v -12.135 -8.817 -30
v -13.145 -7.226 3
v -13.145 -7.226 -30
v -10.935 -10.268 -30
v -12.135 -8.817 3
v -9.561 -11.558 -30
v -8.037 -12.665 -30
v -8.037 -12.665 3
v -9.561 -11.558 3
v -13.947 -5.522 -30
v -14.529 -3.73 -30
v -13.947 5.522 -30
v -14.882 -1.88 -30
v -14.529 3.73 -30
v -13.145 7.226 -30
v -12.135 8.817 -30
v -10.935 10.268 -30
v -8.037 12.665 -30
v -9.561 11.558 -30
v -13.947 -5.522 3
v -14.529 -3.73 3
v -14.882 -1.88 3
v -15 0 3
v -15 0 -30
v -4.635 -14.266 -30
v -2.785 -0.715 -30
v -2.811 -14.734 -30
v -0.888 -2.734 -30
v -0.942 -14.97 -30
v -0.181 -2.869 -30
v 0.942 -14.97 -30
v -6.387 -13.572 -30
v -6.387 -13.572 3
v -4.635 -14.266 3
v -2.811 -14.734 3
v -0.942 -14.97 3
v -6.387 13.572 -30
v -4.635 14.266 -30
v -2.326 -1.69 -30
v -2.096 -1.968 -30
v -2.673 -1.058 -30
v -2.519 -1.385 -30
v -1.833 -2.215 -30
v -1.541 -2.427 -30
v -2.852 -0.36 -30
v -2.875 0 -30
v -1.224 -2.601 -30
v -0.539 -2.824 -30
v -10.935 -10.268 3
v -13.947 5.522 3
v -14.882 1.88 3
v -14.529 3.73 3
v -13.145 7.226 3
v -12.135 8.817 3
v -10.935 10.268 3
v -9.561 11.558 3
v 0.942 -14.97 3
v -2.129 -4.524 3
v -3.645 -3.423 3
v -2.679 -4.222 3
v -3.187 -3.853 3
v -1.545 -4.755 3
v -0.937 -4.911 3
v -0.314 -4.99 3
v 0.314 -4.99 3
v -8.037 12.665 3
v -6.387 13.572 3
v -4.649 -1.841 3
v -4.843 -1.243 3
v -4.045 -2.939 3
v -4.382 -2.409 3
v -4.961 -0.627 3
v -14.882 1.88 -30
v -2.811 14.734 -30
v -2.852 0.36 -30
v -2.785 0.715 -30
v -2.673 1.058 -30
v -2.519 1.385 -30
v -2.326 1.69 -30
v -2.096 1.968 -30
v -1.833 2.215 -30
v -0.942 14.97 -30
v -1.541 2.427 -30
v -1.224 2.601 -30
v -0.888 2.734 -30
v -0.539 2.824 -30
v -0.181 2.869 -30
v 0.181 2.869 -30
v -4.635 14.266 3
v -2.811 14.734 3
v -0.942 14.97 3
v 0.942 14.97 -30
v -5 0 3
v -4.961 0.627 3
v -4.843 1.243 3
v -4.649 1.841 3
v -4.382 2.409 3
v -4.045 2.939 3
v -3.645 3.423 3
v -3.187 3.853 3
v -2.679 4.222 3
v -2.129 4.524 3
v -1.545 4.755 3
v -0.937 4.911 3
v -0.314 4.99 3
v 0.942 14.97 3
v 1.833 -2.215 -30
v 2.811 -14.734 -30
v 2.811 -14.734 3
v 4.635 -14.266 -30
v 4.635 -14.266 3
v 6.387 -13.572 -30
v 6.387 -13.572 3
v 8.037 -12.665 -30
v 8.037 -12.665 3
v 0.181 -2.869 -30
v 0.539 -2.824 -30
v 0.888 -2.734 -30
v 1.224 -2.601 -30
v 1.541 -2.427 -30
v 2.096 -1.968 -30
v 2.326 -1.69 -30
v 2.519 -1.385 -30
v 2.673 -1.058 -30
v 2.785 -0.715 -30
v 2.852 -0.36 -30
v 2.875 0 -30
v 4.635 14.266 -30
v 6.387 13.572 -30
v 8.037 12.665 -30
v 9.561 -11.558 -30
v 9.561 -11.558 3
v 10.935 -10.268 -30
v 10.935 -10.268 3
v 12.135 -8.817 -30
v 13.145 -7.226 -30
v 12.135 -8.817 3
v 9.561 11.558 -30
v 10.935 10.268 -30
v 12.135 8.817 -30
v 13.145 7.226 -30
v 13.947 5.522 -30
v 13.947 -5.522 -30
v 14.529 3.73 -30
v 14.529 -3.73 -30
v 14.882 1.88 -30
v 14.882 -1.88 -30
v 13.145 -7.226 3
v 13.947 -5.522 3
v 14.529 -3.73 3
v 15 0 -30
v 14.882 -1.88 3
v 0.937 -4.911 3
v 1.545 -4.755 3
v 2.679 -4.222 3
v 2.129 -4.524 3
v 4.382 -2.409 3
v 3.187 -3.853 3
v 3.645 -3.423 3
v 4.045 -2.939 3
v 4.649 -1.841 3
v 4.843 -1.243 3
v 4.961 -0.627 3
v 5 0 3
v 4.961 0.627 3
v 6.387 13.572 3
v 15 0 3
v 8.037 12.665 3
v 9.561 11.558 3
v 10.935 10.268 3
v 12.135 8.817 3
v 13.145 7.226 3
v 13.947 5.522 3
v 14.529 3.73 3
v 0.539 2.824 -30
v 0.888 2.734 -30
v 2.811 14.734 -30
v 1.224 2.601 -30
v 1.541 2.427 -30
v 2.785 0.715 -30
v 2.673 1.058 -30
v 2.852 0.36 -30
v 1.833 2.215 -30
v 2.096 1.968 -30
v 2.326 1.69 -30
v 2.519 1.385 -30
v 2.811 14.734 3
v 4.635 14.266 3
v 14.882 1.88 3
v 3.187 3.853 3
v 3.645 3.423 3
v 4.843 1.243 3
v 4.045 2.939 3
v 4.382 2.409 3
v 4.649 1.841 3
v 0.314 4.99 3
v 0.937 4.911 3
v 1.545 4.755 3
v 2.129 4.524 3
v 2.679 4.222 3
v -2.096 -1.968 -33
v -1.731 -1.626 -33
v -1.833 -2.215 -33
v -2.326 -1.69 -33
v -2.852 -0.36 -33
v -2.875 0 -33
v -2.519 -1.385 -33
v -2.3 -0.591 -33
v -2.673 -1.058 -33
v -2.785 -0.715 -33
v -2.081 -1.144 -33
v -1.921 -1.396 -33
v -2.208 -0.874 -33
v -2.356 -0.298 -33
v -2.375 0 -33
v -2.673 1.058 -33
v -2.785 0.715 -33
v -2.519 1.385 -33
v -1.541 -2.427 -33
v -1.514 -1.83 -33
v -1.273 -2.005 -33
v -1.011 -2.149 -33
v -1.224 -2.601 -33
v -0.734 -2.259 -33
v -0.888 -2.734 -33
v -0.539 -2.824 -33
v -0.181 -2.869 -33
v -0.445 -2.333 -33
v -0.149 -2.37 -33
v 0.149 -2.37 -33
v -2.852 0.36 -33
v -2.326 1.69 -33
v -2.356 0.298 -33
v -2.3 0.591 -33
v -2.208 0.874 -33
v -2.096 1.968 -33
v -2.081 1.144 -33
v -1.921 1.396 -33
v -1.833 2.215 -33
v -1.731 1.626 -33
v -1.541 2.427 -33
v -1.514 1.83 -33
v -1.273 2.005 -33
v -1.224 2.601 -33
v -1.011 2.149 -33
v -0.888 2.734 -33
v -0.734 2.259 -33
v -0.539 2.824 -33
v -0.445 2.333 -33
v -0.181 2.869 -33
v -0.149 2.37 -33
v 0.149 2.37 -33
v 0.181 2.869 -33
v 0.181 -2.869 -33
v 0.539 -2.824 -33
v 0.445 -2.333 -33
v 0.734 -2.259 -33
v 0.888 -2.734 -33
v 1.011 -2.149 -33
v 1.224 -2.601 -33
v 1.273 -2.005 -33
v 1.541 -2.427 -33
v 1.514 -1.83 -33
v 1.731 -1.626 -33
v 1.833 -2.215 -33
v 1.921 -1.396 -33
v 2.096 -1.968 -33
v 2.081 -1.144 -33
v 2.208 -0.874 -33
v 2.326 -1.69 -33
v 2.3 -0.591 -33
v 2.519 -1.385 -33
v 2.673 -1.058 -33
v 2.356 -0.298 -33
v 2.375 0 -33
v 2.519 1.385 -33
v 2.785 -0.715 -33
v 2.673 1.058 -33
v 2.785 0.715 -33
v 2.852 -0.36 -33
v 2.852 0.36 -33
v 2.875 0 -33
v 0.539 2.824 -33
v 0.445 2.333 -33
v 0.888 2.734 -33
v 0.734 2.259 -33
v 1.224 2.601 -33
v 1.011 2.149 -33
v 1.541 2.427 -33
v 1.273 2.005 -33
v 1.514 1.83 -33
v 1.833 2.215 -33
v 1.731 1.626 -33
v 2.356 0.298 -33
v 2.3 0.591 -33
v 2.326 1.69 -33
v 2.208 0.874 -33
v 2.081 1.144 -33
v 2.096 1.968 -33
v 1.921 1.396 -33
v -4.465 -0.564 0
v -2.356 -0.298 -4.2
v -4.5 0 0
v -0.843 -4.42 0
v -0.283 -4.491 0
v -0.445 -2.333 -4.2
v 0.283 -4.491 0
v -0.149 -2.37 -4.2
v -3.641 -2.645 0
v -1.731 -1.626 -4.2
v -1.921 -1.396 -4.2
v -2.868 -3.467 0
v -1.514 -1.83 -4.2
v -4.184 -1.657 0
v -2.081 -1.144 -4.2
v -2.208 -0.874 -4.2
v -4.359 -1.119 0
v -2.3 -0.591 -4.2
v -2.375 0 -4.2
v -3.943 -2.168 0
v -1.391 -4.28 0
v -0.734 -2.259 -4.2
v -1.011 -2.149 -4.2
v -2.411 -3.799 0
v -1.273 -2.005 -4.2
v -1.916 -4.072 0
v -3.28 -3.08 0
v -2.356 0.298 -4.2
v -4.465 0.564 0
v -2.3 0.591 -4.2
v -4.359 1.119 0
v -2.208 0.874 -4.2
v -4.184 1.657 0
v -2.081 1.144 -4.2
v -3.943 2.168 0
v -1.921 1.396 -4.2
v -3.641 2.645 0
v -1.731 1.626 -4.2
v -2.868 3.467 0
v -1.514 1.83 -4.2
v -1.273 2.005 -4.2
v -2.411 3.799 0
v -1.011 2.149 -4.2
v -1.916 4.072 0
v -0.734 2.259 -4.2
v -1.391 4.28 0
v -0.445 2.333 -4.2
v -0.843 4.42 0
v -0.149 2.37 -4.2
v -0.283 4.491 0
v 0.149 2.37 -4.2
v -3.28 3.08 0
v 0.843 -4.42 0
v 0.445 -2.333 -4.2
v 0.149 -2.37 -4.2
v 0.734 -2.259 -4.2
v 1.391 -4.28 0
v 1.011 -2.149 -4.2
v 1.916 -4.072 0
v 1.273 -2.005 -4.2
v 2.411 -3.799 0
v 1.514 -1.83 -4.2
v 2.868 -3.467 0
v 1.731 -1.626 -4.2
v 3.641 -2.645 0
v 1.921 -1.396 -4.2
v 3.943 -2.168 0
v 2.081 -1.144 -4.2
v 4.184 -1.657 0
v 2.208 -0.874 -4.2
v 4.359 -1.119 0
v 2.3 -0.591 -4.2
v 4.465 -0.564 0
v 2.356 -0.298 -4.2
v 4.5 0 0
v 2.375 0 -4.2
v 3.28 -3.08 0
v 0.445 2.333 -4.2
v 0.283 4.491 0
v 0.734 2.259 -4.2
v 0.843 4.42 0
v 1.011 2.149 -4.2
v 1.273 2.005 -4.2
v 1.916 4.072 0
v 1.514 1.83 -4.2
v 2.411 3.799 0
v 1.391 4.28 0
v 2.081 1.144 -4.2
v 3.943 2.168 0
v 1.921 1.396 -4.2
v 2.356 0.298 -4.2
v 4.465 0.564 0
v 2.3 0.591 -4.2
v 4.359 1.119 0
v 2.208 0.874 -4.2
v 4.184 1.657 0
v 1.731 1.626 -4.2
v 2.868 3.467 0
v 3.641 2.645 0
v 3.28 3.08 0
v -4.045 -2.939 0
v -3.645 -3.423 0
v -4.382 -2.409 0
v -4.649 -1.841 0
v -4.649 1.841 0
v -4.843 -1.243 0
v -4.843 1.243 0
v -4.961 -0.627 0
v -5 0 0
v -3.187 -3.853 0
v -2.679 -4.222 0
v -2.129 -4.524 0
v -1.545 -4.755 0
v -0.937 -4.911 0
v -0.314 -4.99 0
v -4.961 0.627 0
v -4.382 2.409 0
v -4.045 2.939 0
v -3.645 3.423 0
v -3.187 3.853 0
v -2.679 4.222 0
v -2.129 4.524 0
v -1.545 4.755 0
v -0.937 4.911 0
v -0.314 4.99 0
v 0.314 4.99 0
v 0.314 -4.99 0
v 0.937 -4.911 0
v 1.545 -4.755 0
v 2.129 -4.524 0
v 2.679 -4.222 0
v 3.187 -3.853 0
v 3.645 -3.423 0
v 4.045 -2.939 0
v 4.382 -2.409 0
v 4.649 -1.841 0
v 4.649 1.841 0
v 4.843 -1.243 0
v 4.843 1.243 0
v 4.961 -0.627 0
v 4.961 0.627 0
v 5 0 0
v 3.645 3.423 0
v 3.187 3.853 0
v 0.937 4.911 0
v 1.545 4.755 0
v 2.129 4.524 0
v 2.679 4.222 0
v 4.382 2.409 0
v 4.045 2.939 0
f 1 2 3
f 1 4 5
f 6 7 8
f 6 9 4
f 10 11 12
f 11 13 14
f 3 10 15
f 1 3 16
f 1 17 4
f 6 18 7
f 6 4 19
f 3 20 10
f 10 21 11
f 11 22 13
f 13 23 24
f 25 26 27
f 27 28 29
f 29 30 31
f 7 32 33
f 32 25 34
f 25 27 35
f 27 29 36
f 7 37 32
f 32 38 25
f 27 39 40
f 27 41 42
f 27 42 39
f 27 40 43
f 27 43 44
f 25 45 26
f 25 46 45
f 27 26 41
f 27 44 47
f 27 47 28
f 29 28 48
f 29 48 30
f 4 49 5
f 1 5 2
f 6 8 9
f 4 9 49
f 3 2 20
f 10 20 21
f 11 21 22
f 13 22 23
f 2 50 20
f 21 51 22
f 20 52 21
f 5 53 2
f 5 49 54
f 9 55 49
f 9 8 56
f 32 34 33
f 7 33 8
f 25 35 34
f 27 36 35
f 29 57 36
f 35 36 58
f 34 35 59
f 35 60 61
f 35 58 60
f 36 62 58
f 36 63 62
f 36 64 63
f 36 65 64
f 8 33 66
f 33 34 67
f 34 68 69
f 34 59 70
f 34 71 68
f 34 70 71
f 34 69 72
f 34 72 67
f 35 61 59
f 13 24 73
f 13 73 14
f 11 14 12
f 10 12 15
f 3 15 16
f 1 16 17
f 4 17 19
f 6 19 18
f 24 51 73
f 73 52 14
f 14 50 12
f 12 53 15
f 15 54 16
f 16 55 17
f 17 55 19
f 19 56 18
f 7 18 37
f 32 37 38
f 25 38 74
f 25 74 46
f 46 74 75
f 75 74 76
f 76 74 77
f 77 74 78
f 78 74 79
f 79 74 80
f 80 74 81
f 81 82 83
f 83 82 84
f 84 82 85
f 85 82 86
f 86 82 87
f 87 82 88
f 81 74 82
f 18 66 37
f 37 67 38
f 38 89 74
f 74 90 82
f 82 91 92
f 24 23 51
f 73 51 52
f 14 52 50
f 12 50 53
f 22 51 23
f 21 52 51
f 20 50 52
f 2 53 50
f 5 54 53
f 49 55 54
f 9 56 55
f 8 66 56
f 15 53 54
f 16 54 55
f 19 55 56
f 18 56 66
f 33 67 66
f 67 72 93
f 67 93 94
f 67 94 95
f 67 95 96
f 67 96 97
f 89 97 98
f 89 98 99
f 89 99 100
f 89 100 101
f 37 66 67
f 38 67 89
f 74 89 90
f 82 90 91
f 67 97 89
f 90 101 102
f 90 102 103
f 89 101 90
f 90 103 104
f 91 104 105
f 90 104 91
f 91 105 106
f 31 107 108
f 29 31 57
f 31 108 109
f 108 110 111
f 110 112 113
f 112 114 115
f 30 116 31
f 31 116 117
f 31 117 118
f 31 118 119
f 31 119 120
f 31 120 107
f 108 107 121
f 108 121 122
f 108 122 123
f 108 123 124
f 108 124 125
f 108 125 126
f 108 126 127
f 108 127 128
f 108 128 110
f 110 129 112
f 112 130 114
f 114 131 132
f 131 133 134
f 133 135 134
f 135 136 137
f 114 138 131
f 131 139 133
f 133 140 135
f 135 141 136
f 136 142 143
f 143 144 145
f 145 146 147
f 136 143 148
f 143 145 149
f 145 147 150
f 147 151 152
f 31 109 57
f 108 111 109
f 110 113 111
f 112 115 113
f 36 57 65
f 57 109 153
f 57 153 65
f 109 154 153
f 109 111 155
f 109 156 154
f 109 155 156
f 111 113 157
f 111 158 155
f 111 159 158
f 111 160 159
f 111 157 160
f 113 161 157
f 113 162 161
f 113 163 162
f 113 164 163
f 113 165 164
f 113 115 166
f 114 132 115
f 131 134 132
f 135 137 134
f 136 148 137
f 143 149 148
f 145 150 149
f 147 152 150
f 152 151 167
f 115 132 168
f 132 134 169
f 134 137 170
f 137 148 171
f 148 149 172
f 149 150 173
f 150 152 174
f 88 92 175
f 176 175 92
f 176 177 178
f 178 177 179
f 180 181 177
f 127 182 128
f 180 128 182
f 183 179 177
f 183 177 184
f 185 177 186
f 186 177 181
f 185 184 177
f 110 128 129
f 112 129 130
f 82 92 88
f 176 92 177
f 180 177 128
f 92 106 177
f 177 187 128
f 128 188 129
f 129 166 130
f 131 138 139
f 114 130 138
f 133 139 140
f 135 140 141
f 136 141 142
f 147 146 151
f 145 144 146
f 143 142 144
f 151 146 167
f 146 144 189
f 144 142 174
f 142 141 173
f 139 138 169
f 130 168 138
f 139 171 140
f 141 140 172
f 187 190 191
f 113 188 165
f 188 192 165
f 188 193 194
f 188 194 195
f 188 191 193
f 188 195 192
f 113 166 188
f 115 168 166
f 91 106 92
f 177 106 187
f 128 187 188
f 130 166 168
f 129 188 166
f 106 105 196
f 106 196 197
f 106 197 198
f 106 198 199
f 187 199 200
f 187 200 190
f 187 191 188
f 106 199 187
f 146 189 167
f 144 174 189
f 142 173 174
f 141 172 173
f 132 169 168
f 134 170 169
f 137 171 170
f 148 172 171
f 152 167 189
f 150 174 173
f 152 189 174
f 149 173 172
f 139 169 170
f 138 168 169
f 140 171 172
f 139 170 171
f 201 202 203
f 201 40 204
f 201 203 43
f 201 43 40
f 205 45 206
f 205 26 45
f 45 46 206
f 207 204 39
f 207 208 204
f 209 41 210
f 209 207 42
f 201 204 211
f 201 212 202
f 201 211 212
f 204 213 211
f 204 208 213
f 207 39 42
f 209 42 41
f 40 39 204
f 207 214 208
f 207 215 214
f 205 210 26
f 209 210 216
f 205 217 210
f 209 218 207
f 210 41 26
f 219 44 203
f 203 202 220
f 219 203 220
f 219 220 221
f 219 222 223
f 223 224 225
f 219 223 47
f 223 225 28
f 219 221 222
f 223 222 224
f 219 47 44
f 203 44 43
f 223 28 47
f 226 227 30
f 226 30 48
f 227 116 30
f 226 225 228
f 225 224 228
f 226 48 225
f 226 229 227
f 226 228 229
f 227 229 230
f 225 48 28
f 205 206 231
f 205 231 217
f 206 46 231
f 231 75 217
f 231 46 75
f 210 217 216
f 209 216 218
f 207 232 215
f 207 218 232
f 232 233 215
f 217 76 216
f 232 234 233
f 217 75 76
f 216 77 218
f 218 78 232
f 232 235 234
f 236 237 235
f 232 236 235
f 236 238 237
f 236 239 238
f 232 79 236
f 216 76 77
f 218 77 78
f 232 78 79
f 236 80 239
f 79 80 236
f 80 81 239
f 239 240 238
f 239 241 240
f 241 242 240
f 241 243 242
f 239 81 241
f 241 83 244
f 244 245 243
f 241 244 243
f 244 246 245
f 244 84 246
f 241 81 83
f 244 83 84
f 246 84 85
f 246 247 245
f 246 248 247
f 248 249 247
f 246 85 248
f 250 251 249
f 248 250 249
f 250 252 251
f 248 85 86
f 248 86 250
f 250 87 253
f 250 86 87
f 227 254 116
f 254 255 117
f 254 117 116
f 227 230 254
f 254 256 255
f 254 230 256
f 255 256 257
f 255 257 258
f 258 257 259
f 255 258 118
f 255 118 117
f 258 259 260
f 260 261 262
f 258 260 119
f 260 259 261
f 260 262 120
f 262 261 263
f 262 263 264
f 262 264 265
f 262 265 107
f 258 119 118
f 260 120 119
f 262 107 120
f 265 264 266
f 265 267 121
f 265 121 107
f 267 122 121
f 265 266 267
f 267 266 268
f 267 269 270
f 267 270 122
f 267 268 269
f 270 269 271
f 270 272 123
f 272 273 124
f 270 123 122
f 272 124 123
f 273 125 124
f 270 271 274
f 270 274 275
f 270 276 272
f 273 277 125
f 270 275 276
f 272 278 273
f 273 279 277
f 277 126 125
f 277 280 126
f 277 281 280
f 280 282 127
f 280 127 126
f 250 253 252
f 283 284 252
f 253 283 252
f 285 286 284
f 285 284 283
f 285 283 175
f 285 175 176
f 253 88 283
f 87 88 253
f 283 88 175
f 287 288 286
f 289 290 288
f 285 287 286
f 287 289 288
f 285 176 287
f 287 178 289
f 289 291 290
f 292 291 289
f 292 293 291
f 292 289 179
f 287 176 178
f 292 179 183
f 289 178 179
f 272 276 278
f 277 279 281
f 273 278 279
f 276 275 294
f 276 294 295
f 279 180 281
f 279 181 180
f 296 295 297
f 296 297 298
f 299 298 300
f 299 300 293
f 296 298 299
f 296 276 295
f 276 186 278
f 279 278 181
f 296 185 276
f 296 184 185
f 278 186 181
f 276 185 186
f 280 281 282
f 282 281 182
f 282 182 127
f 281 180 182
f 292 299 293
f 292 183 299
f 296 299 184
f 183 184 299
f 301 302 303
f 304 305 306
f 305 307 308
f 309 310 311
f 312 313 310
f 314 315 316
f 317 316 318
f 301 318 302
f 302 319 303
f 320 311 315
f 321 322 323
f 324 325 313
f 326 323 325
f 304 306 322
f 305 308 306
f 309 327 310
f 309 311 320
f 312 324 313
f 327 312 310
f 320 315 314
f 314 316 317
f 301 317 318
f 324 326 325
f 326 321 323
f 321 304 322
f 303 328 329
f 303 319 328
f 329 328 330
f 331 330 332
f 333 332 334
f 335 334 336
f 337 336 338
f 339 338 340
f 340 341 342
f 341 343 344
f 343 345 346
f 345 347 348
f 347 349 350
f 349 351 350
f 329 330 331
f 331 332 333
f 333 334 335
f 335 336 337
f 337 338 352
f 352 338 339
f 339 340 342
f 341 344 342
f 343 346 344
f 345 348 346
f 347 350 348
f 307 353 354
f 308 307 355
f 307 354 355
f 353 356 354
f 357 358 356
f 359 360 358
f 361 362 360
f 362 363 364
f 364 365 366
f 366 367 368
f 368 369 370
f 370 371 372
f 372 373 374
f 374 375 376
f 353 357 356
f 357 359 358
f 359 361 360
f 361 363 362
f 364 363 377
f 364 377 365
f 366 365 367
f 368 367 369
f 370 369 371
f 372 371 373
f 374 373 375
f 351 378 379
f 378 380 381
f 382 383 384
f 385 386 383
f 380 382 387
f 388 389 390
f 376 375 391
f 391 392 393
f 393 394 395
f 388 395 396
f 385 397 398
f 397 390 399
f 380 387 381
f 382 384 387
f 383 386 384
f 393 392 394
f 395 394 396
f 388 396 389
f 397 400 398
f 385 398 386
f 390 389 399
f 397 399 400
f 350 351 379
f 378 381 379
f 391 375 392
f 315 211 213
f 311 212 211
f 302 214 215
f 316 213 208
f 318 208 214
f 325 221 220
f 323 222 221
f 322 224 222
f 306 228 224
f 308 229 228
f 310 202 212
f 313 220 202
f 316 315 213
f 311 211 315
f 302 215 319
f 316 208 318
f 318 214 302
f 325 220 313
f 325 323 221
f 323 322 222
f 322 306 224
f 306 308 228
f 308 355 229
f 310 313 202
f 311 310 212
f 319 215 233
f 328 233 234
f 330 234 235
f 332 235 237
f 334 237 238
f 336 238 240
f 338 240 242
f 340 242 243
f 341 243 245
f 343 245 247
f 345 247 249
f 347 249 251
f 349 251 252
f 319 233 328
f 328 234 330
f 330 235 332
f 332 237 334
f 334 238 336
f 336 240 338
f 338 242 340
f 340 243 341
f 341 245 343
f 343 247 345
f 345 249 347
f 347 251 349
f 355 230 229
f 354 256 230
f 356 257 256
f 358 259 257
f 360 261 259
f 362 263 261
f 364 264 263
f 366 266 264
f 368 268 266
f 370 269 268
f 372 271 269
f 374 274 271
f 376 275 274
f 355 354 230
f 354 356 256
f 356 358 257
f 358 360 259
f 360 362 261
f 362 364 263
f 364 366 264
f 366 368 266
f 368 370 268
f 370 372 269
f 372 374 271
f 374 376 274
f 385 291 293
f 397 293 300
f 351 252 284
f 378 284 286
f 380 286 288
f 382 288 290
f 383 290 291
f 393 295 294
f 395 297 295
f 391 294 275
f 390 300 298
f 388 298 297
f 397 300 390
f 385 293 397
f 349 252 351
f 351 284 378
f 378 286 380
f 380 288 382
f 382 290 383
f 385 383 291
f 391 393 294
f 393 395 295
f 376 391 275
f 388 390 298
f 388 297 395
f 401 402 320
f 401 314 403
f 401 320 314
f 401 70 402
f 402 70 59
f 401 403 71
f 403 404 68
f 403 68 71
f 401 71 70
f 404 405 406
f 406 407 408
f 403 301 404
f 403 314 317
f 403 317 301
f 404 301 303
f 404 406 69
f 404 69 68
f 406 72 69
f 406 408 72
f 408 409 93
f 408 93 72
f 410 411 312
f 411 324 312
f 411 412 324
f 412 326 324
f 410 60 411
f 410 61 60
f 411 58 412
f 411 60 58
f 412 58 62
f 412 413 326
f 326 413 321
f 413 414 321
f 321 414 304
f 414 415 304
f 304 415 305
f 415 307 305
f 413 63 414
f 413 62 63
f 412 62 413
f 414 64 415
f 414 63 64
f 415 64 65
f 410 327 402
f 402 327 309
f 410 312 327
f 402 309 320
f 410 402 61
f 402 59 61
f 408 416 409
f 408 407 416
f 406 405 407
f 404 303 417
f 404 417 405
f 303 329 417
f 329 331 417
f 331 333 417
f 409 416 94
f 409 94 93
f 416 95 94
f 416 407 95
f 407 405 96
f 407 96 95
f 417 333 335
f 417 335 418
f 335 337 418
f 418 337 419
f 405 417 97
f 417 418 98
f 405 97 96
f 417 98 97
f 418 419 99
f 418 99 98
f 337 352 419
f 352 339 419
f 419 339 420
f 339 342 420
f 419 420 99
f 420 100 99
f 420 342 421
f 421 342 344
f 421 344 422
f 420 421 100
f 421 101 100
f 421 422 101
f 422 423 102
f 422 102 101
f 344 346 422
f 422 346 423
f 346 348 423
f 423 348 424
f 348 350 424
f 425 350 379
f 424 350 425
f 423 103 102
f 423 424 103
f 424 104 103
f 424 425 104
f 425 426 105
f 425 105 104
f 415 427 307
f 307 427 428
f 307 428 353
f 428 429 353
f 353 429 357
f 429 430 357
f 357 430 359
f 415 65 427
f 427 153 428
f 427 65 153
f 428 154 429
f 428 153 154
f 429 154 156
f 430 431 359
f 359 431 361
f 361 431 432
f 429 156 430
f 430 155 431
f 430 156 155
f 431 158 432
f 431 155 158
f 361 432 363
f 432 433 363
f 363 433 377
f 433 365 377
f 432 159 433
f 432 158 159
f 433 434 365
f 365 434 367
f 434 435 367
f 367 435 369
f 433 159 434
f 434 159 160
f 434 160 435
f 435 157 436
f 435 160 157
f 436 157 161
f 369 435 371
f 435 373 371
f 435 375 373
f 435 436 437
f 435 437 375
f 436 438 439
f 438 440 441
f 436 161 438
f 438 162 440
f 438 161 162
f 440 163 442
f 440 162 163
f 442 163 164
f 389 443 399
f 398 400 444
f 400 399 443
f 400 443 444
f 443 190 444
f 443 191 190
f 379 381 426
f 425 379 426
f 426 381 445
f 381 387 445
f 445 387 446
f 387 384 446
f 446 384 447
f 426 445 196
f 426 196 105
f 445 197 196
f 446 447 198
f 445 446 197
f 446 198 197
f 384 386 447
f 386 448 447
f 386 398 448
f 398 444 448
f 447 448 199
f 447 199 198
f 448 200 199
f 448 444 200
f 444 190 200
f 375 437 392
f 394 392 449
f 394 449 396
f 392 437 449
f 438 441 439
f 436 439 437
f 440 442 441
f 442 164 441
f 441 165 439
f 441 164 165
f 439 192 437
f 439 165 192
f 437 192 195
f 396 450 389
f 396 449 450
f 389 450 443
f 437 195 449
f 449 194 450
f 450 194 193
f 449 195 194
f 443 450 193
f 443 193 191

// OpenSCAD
$fn = 50;

difference() {
	union() {
		translate(v = [0, 0, -30.0]) {
			cylinder(h = 33, r = 15.0);
		}
		#translate(v = [0, 0, -33.0]) {
			cylinder(h = 33, r = 2.875);
		}
	}
	union() {
		translate(v = [0, 0, 0]) {
			rotate(a = [0, 0, 0]) {
				difference() {
					union() {
						translate(v = [0, 0, -33.0]) {
							cylinder(h = 33, r = 2.25);
						}
						translate(v = [0, 0, -4.2]) {
							cylinder(h = 4.2, r1 = 2.375, r2 = 4.5);
						}
						translate(v = [0, 0, -33.0]) {
							cylinder(h = 33, r = 2.375);
						}
						translate(v = [0, 0, -33.0]) {
							cylinder(h = 33, r = 2.25);
						}
					}
					union();
				}
			}
		}
		#cylinder(h = 3, r = 5.0);
	}
}
